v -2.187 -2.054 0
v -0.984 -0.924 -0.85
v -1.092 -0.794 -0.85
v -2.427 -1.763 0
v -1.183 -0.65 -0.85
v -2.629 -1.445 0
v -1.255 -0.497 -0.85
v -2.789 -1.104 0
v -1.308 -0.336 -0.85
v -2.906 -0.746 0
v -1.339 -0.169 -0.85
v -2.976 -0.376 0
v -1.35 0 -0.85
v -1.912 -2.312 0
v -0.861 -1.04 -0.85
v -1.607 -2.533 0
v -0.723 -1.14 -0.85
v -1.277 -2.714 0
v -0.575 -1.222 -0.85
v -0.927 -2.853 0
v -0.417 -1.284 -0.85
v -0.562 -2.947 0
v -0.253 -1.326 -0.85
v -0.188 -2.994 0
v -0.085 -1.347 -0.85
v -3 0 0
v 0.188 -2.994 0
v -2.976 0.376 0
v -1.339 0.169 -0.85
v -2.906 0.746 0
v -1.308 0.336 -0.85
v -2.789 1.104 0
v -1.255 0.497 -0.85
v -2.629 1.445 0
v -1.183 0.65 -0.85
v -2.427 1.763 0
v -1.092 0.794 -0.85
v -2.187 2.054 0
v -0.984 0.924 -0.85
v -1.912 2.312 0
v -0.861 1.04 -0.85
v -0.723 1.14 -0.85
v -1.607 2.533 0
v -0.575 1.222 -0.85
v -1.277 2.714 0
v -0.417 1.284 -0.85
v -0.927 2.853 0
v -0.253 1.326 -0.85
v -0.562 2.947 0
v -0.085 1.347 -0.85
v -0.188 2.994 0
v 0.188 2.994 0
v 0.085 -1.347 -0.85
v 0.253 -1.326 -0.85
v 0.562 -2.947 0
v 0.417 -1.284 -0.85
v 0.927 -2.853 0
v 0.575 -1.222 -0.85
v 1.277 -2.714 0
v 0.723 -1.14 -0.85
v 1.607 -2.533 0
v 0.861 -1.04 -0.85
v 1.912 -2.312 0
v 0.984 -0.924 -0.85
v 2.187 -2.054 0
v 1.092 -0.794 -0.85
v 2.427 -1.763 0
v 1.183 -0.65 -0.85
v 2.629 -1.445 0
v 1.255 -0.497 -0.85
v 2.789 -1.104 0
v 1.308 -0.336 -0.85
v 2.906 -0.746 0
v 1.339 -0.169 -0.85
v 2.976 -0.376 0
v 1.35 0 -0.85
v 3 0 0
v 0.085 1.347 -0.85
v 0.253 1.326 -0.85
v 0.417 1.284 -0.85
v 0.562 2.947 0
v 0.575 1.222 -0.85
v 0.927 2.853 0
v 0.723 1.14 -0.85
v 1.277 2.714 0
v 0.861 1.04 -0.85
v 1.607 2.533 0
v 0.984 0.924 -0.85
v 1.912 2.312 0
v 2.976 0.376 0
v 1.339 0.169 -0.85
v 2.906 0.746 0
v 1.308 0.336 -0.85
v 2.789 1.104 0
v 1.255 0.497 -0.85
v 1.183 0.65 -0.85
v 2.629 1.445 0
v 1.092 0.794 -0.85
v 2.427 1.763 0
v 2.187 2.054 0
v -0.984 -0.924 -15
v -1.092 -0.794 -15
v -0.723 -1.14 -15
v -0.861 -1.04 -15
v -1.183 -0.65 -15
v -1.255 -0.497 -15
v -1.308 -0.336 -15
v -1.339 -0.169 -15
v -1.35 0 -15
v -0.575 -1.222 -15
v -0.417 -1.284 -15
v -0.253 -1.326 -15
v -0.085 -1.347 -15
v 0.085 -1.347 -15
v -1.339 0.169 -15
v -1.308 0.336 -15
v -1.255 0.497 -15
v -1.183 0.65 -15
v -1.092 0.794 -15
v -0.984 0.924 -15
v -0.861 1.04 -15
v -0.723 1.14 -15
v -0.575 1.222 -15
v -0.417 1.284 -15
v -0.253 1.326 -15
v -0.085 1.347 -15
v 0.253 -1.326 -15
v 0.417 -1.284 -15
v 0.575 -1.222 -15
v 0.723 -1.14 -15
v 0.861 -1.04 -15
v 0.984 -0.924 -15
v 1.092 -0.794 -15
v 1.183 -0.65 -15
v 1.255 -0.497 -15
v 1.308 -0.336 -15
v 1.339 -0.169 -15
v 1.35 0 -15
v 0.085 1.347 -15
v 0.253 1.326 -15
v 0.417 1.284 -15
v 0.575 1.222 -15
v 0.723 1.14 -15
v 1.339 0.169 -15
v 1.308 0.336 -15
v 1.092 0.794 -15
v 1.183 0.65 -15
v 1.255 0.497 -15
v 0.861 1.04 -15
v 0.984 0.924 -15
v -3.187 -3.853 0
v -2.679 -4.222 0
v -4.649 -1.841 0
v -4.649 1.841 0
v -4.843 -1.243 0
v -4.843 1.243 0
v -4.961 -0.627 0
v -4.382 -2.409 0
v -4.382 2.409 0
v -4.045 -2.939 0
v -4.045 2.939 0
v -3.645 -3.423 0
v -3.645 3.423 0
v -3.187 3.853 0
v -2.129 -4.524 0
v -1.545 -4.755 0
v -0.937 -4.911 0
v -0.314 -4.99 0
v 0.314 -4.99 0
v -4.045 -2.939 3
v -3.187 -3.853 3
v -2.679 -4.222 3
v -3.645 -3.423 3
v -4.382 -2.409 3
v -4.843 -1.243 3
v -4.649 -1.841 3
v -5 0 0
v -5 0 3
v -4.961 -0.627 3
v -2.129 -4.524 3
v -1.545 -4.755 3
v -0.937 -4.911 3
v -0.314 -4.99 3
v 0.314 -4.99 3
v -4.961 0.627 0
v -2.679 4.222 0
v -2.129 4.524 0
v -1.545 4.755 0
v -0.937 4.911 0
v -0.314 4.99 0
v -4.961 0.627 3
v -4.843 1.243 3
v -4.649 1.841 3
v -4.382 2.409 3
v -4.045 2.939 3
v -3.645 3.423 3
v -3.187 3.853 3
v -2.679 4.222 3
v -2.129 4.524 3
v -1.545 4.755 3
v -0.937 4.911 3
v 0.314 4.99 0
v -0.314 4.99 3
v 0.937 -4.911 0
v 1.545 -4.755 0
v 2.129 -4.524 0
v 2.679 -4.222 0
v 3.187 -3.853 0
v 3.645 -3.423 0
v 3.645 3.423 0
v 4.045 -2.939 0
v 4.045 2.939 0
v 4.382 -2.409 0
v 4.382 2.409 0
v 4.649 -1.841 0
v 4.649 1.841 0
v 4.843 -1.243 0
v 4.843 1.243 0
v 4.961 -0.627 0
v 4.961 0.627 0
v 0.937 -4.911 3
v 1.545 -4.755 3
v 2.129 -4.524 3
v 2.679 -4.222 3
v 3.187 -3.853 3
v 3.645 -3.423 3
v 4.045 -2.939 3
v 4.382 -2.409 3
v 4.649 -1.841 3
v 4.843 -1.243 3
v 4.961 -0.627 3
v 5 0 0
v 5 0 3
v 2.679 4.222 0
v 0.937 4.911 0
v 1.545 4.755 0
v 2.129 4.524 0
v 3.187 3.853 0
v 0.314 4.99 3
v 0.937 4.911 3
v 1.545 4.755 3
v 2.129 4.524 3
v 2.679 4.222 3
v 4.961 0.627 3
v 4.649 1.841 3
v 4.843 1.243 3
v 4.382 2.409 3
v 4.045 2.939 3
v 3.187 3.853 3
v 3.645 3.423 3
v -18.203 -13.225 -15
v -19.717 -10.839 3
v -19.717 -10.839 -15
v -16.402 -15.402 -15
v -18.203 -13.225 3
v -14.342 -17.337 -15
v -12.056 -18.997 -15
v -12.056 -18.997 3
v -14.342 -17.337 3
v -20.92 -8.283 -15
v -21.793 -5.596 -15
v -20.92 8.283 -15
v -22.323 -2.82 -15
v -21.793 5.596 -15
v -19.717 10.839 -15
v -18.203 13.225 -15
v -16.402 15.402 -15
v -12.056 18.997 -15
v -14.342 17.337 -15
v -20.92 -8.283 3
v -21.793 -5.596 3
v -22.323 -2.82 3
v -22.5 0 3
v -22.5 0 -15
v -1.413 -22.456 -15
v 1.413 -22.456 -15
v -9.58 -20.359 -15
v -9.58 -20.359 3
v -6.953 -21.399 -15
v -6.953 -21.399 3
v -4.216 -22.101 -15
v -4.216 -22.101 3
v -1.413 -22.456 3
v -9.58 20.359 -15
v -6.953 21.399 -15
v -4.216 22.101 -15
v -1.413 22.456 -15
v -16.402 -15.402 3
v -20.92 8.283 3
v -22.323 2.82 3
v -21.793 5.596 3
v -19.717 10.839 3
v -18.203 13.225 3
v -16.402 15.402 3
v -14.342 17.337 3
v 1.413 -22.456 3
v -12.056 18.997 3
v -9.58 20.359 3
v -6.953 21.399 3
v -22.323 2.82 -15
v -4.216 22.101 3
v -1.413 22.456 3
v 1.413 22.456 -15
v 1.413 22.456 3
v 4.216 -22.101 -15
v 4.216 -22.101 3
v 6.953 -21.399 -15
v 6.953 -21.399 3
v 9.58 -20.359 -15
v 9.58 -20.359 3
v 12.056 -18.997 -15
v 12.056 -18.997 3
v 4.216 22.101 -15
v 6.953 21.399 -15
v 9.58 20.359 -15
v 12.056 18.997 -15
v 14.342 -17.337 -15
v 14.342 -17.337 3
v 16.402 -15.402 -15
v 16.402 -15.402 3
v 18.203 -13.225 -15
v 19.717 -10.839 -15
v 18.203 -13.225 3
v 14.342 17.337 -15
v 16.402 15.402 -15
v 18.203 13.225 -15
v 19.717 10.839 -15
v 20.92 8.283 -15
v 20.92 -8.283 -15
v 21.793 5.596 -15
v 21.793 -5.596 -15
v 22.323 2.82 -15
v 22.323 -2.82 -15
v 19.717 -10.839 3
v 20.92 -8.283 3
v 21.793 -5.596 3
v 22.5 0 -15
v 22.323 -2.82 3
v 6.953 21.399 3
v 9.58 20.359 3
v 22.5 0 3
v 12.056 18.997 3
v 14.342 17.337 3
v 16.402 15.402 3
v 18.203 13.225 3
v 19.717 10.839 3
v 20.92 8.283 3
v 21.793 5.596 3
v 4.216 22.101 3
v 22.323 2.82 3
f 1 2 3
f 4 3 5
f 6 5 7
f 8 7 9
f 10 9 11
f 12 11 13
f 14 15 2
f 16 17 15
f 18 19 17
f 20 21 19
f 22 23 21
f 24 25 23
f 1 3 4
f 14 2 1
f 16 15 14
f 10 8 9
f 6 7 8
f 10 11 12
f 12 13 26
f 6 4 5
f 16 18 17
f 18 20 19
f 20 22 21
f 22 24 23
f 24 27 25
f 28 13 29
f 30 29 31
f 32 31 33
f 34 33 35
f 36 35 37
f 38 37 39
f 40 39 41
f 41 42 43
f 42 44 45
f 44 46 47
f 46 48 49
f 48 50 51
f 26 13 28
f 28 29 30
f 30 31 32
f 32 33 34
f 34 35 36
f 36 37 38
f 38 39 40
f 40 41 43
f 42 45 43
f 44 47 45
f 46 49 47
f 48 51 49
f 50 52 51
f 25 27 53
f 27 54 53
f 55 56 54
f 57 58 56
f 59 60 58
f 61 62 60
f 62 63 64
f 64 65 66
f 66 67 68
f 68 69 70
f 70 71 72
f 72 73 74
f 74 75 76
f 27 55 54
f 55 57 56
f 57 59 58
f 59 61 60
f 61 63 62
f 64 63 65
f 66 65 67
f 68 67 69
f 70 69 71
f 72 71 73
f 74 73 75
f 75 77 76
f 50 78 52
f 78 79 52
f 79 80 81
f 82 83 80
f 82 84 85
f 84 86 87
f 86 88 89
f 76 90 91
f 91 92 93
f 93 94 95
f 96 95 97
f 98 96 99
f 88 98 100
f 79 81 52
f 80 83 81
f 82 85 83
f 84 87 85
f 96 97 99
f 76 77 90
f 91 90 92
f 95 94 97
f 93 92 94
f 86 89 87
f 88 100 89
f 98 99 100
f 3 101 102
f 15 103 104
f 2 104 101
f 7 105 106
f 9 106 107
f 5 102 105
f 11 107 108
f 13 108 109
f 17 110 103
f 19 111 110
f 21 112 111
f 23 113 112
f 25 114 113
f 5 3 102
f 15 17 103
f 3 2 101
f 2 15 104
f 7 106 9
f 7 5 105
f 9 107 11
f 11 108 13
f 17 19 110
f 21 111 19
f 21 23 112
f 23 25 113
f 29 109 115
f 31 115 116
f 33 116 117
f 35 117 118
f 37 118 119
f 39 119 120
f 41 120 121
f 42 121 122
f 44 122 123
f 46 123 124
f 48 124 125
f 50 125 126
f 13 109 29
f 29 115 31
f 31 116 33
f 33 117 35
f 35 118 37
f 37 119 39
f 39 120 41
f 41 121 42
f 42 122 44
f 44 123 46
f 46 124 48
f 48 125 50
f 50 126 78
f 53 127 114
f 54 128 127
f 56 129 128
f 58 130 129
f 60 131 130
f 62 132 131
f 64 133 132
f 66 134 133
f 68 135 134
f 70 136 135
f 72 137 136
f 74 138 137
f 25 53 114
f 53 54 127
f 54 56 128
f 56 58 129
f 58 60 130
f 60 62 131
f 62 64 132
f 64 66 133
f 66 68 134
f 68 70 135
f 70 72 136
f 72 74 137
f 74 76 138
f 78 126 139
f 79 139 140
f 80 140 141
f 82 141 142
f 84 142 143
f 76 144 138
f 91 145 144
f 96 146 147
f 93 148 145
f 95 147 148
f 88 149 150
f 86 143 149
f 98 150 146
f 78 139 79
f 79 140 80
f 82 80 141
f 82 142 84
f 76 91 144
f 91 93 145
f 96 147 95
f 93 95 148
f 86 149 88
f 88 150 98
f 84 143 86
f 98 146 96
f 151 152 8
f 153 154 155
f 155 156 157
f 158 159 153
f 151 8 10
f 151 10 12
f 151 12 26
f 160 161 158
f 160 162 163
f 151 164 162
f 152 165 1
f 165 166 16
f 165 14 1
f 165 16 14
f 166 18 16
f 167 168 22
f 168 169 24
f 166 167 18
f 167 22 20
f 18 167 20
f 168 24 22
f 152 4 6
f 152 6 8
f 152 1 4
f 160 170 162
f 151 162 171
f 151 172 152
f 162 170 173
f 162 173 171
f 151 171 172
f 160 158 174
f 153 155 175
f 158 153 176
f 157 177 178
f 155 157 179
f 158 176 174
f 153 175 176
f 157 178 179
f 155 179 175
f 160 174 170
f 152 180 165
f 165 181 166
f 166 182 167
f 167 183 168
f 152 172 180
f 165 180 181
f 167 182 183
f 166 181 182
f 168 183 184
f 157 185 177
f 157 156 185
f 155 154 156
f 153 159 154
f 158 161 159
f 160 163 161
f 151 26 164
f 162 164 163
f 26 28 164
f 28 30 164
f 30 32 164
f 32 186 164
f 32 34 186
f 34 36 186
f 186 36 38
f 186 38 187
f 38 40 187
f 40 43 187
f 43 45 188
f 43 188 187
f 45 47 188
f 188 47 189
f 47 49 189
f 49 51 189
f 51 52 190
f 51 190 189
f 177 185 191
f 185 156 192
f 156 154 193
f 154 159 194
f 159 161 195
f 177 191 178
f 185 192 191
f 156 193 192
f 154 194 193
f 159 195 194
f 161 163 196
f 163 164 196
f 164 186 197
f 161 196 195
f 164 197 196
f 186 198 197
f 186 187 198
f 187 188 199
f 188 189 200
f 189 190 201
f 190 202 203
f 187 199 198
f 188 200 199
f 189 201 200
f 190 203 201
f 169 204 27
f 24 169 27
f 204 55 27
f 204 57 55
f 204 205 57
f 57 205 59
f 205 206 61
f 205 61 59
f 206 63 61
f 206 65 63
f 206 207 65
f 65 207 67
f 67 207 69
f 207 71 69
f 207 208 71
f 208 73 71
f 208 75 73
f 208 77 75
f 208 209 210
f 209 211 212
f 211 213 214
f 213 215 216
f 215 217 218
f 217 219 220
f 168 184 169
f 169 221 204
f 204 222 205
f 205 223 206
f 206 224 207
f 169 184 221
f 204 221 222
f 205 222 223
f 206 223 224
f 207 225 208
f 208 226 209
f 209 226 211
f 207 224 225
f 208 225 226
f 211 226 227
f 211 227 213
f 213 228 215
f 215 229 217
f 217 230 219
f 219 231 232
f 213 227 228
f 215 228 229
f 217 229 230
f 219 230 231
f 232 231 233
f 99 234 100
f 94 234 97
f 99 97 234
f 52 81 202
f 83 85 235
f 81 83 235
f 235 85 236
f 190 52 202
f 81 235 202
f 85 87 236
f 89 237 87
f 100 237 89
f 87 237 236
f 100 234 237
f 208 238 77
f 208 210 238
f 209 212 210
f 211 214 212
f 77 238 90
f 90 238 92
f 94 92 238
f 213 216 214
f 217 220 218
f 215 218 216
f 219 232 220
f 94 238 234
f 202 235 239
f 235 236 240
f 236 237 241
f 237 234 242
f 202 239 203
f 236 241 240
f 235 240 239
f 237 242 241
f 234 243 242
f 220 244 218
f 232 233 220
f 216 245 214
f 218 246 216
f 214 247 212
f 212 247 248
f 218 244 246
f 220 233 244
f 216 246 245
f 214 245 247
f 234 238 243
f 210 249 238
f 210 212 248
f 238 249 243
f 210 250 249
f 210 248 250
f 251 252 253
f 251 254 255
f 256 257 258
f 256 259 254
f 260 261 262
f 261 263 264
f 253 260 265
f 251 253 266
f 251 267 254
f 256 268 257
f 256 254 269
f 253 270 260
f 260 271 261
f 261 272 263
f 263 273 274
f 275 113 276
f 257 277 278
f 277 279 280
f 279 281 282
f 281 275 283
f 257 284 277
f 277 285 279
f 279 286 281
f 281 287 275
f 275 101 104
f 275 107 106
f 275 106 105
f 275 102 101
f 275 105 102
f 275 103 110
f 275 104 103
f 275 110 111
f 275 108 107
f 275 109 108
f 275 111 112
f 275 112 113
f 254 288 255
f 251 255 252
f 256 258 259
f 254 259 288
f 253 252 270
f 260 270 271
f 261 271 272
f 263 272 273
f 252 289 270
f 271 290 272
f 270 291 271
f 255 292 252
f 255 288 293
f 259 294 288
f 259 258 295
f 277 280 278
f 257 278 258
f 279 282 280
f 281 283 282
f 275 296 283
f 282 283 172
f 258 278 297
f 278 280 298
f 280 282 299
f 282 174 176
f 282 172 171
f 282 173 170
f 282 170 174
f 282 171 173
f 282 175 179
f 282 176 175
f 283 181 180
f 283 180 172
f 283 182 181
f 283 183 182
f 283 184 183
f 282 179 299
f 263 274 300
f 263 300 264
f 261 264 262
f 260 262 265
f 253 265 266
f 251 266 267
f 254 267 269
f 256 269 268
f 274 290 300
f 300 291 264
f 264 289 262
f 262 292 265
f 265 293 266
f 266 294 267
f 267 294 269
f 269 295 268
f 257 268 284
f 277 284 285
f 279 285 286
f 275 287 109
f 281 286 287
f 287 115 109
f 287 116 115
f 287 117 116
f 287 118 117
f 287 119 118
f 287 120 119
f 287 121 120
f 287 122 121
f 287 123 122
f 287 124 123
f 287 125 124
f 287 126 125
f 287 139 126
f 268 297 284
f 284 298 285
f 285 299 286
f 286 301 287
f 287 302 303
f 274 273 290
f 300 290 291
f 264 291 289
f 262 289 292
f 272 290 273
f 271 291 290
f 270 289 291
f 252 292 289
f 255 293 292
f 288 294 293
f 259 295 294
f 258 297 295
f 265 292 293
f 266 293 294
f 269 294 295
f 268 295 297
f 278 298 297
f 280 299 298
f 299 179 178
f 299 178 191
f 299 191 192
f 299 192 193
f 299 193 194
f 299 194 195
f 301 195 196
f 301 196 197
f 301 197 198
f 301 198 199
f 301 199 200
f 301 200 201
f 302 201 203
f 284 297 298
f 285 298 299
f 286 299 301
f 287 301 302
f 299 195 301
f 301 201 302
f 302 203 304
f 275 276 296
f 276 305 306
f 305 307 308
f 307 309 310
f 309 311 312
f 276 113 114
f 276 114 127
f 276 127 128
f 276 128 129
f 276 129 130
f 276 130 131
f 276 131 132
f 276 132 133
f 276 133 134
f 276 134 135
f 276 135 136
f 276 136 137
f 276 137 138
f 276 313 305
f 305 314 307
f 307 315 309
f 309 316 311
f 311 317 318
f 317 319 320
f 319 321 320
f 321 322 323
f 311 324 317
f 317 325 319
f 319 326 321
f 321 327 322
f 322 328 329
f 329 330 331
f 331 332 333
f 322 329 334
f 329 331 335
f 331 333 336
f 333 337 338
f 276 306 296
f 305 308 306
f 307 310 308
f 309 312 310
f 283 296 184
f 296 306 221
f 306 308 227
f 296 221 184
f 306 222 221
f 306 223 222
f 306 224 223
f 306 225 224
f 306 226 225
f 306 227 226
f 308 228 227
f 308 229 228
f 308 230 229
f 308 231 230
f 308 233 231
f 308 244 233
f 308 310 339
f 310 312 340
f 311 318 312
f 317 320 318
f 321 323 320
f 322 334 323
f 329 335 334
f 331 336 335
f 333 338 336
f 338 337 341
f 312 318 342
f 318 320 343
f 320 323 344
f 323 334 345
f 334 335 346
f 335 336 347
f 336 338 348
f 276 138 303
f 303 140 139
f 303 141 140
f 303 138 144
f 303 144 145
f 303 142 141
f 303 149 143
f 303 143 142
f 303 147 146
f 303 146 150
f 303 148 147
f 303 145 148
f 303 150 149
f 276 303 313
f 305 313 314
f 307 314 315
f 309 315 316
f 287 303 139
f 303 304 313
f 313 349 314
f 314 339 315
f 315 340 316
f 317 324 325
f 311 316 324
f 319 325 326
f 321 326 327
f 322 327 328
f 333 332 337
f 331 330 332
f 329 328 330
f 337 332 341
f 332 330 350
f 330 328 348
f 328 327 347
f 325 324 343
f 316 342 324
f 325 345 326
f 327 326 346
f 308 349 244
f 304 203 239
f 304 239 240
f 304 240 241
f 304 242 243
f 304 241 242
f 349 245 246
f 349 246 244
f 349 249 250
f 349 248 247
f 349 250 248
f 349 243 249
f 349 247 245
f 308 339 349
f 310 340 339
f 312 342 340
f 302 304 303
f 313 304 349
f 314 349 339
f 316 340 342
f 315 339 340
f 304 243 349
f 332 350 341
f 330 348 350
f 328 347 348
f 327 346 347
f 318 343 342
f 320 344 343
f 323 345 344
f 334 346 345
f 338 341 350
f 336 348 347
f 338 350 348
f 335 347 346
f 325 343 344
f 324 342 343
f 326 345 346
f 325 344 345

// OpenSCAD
$fn = 50;


difference() {
	union() {
		translate(v = [0, 0, -15.0000000000]) {
			cylinder(h = 18, r = 22.5000000000);
		}
	}
	union() {
		translate(v = [0, 0, 0]) {
			rotate(a = [0, 0, 0]) {
				difference() {
					union() {
						translate(v = [0, 0, -18.0000000000]) {
							cylinder(h = 18, r = 1.0000000000);
						}
						translate(v = [0, 0, -0.8500000000]) {
							cylinder(h = 0.8500000000, r1 = 1.3500000000, r2 = 3.0000000000);
						}
						translate(v = [0, 0, -18.0000000000]) {
							cylinder(h = 18, r = 1.3500000000);
						}
						translate(v = [0, 0, -18.0000000000]) {
							cylinder(h = 18, r = 1.0000000000);
						}
					}
					union();
				}
			}
		}
		#cylinder(h = 3, r = 5.0000000000);
	}
}
